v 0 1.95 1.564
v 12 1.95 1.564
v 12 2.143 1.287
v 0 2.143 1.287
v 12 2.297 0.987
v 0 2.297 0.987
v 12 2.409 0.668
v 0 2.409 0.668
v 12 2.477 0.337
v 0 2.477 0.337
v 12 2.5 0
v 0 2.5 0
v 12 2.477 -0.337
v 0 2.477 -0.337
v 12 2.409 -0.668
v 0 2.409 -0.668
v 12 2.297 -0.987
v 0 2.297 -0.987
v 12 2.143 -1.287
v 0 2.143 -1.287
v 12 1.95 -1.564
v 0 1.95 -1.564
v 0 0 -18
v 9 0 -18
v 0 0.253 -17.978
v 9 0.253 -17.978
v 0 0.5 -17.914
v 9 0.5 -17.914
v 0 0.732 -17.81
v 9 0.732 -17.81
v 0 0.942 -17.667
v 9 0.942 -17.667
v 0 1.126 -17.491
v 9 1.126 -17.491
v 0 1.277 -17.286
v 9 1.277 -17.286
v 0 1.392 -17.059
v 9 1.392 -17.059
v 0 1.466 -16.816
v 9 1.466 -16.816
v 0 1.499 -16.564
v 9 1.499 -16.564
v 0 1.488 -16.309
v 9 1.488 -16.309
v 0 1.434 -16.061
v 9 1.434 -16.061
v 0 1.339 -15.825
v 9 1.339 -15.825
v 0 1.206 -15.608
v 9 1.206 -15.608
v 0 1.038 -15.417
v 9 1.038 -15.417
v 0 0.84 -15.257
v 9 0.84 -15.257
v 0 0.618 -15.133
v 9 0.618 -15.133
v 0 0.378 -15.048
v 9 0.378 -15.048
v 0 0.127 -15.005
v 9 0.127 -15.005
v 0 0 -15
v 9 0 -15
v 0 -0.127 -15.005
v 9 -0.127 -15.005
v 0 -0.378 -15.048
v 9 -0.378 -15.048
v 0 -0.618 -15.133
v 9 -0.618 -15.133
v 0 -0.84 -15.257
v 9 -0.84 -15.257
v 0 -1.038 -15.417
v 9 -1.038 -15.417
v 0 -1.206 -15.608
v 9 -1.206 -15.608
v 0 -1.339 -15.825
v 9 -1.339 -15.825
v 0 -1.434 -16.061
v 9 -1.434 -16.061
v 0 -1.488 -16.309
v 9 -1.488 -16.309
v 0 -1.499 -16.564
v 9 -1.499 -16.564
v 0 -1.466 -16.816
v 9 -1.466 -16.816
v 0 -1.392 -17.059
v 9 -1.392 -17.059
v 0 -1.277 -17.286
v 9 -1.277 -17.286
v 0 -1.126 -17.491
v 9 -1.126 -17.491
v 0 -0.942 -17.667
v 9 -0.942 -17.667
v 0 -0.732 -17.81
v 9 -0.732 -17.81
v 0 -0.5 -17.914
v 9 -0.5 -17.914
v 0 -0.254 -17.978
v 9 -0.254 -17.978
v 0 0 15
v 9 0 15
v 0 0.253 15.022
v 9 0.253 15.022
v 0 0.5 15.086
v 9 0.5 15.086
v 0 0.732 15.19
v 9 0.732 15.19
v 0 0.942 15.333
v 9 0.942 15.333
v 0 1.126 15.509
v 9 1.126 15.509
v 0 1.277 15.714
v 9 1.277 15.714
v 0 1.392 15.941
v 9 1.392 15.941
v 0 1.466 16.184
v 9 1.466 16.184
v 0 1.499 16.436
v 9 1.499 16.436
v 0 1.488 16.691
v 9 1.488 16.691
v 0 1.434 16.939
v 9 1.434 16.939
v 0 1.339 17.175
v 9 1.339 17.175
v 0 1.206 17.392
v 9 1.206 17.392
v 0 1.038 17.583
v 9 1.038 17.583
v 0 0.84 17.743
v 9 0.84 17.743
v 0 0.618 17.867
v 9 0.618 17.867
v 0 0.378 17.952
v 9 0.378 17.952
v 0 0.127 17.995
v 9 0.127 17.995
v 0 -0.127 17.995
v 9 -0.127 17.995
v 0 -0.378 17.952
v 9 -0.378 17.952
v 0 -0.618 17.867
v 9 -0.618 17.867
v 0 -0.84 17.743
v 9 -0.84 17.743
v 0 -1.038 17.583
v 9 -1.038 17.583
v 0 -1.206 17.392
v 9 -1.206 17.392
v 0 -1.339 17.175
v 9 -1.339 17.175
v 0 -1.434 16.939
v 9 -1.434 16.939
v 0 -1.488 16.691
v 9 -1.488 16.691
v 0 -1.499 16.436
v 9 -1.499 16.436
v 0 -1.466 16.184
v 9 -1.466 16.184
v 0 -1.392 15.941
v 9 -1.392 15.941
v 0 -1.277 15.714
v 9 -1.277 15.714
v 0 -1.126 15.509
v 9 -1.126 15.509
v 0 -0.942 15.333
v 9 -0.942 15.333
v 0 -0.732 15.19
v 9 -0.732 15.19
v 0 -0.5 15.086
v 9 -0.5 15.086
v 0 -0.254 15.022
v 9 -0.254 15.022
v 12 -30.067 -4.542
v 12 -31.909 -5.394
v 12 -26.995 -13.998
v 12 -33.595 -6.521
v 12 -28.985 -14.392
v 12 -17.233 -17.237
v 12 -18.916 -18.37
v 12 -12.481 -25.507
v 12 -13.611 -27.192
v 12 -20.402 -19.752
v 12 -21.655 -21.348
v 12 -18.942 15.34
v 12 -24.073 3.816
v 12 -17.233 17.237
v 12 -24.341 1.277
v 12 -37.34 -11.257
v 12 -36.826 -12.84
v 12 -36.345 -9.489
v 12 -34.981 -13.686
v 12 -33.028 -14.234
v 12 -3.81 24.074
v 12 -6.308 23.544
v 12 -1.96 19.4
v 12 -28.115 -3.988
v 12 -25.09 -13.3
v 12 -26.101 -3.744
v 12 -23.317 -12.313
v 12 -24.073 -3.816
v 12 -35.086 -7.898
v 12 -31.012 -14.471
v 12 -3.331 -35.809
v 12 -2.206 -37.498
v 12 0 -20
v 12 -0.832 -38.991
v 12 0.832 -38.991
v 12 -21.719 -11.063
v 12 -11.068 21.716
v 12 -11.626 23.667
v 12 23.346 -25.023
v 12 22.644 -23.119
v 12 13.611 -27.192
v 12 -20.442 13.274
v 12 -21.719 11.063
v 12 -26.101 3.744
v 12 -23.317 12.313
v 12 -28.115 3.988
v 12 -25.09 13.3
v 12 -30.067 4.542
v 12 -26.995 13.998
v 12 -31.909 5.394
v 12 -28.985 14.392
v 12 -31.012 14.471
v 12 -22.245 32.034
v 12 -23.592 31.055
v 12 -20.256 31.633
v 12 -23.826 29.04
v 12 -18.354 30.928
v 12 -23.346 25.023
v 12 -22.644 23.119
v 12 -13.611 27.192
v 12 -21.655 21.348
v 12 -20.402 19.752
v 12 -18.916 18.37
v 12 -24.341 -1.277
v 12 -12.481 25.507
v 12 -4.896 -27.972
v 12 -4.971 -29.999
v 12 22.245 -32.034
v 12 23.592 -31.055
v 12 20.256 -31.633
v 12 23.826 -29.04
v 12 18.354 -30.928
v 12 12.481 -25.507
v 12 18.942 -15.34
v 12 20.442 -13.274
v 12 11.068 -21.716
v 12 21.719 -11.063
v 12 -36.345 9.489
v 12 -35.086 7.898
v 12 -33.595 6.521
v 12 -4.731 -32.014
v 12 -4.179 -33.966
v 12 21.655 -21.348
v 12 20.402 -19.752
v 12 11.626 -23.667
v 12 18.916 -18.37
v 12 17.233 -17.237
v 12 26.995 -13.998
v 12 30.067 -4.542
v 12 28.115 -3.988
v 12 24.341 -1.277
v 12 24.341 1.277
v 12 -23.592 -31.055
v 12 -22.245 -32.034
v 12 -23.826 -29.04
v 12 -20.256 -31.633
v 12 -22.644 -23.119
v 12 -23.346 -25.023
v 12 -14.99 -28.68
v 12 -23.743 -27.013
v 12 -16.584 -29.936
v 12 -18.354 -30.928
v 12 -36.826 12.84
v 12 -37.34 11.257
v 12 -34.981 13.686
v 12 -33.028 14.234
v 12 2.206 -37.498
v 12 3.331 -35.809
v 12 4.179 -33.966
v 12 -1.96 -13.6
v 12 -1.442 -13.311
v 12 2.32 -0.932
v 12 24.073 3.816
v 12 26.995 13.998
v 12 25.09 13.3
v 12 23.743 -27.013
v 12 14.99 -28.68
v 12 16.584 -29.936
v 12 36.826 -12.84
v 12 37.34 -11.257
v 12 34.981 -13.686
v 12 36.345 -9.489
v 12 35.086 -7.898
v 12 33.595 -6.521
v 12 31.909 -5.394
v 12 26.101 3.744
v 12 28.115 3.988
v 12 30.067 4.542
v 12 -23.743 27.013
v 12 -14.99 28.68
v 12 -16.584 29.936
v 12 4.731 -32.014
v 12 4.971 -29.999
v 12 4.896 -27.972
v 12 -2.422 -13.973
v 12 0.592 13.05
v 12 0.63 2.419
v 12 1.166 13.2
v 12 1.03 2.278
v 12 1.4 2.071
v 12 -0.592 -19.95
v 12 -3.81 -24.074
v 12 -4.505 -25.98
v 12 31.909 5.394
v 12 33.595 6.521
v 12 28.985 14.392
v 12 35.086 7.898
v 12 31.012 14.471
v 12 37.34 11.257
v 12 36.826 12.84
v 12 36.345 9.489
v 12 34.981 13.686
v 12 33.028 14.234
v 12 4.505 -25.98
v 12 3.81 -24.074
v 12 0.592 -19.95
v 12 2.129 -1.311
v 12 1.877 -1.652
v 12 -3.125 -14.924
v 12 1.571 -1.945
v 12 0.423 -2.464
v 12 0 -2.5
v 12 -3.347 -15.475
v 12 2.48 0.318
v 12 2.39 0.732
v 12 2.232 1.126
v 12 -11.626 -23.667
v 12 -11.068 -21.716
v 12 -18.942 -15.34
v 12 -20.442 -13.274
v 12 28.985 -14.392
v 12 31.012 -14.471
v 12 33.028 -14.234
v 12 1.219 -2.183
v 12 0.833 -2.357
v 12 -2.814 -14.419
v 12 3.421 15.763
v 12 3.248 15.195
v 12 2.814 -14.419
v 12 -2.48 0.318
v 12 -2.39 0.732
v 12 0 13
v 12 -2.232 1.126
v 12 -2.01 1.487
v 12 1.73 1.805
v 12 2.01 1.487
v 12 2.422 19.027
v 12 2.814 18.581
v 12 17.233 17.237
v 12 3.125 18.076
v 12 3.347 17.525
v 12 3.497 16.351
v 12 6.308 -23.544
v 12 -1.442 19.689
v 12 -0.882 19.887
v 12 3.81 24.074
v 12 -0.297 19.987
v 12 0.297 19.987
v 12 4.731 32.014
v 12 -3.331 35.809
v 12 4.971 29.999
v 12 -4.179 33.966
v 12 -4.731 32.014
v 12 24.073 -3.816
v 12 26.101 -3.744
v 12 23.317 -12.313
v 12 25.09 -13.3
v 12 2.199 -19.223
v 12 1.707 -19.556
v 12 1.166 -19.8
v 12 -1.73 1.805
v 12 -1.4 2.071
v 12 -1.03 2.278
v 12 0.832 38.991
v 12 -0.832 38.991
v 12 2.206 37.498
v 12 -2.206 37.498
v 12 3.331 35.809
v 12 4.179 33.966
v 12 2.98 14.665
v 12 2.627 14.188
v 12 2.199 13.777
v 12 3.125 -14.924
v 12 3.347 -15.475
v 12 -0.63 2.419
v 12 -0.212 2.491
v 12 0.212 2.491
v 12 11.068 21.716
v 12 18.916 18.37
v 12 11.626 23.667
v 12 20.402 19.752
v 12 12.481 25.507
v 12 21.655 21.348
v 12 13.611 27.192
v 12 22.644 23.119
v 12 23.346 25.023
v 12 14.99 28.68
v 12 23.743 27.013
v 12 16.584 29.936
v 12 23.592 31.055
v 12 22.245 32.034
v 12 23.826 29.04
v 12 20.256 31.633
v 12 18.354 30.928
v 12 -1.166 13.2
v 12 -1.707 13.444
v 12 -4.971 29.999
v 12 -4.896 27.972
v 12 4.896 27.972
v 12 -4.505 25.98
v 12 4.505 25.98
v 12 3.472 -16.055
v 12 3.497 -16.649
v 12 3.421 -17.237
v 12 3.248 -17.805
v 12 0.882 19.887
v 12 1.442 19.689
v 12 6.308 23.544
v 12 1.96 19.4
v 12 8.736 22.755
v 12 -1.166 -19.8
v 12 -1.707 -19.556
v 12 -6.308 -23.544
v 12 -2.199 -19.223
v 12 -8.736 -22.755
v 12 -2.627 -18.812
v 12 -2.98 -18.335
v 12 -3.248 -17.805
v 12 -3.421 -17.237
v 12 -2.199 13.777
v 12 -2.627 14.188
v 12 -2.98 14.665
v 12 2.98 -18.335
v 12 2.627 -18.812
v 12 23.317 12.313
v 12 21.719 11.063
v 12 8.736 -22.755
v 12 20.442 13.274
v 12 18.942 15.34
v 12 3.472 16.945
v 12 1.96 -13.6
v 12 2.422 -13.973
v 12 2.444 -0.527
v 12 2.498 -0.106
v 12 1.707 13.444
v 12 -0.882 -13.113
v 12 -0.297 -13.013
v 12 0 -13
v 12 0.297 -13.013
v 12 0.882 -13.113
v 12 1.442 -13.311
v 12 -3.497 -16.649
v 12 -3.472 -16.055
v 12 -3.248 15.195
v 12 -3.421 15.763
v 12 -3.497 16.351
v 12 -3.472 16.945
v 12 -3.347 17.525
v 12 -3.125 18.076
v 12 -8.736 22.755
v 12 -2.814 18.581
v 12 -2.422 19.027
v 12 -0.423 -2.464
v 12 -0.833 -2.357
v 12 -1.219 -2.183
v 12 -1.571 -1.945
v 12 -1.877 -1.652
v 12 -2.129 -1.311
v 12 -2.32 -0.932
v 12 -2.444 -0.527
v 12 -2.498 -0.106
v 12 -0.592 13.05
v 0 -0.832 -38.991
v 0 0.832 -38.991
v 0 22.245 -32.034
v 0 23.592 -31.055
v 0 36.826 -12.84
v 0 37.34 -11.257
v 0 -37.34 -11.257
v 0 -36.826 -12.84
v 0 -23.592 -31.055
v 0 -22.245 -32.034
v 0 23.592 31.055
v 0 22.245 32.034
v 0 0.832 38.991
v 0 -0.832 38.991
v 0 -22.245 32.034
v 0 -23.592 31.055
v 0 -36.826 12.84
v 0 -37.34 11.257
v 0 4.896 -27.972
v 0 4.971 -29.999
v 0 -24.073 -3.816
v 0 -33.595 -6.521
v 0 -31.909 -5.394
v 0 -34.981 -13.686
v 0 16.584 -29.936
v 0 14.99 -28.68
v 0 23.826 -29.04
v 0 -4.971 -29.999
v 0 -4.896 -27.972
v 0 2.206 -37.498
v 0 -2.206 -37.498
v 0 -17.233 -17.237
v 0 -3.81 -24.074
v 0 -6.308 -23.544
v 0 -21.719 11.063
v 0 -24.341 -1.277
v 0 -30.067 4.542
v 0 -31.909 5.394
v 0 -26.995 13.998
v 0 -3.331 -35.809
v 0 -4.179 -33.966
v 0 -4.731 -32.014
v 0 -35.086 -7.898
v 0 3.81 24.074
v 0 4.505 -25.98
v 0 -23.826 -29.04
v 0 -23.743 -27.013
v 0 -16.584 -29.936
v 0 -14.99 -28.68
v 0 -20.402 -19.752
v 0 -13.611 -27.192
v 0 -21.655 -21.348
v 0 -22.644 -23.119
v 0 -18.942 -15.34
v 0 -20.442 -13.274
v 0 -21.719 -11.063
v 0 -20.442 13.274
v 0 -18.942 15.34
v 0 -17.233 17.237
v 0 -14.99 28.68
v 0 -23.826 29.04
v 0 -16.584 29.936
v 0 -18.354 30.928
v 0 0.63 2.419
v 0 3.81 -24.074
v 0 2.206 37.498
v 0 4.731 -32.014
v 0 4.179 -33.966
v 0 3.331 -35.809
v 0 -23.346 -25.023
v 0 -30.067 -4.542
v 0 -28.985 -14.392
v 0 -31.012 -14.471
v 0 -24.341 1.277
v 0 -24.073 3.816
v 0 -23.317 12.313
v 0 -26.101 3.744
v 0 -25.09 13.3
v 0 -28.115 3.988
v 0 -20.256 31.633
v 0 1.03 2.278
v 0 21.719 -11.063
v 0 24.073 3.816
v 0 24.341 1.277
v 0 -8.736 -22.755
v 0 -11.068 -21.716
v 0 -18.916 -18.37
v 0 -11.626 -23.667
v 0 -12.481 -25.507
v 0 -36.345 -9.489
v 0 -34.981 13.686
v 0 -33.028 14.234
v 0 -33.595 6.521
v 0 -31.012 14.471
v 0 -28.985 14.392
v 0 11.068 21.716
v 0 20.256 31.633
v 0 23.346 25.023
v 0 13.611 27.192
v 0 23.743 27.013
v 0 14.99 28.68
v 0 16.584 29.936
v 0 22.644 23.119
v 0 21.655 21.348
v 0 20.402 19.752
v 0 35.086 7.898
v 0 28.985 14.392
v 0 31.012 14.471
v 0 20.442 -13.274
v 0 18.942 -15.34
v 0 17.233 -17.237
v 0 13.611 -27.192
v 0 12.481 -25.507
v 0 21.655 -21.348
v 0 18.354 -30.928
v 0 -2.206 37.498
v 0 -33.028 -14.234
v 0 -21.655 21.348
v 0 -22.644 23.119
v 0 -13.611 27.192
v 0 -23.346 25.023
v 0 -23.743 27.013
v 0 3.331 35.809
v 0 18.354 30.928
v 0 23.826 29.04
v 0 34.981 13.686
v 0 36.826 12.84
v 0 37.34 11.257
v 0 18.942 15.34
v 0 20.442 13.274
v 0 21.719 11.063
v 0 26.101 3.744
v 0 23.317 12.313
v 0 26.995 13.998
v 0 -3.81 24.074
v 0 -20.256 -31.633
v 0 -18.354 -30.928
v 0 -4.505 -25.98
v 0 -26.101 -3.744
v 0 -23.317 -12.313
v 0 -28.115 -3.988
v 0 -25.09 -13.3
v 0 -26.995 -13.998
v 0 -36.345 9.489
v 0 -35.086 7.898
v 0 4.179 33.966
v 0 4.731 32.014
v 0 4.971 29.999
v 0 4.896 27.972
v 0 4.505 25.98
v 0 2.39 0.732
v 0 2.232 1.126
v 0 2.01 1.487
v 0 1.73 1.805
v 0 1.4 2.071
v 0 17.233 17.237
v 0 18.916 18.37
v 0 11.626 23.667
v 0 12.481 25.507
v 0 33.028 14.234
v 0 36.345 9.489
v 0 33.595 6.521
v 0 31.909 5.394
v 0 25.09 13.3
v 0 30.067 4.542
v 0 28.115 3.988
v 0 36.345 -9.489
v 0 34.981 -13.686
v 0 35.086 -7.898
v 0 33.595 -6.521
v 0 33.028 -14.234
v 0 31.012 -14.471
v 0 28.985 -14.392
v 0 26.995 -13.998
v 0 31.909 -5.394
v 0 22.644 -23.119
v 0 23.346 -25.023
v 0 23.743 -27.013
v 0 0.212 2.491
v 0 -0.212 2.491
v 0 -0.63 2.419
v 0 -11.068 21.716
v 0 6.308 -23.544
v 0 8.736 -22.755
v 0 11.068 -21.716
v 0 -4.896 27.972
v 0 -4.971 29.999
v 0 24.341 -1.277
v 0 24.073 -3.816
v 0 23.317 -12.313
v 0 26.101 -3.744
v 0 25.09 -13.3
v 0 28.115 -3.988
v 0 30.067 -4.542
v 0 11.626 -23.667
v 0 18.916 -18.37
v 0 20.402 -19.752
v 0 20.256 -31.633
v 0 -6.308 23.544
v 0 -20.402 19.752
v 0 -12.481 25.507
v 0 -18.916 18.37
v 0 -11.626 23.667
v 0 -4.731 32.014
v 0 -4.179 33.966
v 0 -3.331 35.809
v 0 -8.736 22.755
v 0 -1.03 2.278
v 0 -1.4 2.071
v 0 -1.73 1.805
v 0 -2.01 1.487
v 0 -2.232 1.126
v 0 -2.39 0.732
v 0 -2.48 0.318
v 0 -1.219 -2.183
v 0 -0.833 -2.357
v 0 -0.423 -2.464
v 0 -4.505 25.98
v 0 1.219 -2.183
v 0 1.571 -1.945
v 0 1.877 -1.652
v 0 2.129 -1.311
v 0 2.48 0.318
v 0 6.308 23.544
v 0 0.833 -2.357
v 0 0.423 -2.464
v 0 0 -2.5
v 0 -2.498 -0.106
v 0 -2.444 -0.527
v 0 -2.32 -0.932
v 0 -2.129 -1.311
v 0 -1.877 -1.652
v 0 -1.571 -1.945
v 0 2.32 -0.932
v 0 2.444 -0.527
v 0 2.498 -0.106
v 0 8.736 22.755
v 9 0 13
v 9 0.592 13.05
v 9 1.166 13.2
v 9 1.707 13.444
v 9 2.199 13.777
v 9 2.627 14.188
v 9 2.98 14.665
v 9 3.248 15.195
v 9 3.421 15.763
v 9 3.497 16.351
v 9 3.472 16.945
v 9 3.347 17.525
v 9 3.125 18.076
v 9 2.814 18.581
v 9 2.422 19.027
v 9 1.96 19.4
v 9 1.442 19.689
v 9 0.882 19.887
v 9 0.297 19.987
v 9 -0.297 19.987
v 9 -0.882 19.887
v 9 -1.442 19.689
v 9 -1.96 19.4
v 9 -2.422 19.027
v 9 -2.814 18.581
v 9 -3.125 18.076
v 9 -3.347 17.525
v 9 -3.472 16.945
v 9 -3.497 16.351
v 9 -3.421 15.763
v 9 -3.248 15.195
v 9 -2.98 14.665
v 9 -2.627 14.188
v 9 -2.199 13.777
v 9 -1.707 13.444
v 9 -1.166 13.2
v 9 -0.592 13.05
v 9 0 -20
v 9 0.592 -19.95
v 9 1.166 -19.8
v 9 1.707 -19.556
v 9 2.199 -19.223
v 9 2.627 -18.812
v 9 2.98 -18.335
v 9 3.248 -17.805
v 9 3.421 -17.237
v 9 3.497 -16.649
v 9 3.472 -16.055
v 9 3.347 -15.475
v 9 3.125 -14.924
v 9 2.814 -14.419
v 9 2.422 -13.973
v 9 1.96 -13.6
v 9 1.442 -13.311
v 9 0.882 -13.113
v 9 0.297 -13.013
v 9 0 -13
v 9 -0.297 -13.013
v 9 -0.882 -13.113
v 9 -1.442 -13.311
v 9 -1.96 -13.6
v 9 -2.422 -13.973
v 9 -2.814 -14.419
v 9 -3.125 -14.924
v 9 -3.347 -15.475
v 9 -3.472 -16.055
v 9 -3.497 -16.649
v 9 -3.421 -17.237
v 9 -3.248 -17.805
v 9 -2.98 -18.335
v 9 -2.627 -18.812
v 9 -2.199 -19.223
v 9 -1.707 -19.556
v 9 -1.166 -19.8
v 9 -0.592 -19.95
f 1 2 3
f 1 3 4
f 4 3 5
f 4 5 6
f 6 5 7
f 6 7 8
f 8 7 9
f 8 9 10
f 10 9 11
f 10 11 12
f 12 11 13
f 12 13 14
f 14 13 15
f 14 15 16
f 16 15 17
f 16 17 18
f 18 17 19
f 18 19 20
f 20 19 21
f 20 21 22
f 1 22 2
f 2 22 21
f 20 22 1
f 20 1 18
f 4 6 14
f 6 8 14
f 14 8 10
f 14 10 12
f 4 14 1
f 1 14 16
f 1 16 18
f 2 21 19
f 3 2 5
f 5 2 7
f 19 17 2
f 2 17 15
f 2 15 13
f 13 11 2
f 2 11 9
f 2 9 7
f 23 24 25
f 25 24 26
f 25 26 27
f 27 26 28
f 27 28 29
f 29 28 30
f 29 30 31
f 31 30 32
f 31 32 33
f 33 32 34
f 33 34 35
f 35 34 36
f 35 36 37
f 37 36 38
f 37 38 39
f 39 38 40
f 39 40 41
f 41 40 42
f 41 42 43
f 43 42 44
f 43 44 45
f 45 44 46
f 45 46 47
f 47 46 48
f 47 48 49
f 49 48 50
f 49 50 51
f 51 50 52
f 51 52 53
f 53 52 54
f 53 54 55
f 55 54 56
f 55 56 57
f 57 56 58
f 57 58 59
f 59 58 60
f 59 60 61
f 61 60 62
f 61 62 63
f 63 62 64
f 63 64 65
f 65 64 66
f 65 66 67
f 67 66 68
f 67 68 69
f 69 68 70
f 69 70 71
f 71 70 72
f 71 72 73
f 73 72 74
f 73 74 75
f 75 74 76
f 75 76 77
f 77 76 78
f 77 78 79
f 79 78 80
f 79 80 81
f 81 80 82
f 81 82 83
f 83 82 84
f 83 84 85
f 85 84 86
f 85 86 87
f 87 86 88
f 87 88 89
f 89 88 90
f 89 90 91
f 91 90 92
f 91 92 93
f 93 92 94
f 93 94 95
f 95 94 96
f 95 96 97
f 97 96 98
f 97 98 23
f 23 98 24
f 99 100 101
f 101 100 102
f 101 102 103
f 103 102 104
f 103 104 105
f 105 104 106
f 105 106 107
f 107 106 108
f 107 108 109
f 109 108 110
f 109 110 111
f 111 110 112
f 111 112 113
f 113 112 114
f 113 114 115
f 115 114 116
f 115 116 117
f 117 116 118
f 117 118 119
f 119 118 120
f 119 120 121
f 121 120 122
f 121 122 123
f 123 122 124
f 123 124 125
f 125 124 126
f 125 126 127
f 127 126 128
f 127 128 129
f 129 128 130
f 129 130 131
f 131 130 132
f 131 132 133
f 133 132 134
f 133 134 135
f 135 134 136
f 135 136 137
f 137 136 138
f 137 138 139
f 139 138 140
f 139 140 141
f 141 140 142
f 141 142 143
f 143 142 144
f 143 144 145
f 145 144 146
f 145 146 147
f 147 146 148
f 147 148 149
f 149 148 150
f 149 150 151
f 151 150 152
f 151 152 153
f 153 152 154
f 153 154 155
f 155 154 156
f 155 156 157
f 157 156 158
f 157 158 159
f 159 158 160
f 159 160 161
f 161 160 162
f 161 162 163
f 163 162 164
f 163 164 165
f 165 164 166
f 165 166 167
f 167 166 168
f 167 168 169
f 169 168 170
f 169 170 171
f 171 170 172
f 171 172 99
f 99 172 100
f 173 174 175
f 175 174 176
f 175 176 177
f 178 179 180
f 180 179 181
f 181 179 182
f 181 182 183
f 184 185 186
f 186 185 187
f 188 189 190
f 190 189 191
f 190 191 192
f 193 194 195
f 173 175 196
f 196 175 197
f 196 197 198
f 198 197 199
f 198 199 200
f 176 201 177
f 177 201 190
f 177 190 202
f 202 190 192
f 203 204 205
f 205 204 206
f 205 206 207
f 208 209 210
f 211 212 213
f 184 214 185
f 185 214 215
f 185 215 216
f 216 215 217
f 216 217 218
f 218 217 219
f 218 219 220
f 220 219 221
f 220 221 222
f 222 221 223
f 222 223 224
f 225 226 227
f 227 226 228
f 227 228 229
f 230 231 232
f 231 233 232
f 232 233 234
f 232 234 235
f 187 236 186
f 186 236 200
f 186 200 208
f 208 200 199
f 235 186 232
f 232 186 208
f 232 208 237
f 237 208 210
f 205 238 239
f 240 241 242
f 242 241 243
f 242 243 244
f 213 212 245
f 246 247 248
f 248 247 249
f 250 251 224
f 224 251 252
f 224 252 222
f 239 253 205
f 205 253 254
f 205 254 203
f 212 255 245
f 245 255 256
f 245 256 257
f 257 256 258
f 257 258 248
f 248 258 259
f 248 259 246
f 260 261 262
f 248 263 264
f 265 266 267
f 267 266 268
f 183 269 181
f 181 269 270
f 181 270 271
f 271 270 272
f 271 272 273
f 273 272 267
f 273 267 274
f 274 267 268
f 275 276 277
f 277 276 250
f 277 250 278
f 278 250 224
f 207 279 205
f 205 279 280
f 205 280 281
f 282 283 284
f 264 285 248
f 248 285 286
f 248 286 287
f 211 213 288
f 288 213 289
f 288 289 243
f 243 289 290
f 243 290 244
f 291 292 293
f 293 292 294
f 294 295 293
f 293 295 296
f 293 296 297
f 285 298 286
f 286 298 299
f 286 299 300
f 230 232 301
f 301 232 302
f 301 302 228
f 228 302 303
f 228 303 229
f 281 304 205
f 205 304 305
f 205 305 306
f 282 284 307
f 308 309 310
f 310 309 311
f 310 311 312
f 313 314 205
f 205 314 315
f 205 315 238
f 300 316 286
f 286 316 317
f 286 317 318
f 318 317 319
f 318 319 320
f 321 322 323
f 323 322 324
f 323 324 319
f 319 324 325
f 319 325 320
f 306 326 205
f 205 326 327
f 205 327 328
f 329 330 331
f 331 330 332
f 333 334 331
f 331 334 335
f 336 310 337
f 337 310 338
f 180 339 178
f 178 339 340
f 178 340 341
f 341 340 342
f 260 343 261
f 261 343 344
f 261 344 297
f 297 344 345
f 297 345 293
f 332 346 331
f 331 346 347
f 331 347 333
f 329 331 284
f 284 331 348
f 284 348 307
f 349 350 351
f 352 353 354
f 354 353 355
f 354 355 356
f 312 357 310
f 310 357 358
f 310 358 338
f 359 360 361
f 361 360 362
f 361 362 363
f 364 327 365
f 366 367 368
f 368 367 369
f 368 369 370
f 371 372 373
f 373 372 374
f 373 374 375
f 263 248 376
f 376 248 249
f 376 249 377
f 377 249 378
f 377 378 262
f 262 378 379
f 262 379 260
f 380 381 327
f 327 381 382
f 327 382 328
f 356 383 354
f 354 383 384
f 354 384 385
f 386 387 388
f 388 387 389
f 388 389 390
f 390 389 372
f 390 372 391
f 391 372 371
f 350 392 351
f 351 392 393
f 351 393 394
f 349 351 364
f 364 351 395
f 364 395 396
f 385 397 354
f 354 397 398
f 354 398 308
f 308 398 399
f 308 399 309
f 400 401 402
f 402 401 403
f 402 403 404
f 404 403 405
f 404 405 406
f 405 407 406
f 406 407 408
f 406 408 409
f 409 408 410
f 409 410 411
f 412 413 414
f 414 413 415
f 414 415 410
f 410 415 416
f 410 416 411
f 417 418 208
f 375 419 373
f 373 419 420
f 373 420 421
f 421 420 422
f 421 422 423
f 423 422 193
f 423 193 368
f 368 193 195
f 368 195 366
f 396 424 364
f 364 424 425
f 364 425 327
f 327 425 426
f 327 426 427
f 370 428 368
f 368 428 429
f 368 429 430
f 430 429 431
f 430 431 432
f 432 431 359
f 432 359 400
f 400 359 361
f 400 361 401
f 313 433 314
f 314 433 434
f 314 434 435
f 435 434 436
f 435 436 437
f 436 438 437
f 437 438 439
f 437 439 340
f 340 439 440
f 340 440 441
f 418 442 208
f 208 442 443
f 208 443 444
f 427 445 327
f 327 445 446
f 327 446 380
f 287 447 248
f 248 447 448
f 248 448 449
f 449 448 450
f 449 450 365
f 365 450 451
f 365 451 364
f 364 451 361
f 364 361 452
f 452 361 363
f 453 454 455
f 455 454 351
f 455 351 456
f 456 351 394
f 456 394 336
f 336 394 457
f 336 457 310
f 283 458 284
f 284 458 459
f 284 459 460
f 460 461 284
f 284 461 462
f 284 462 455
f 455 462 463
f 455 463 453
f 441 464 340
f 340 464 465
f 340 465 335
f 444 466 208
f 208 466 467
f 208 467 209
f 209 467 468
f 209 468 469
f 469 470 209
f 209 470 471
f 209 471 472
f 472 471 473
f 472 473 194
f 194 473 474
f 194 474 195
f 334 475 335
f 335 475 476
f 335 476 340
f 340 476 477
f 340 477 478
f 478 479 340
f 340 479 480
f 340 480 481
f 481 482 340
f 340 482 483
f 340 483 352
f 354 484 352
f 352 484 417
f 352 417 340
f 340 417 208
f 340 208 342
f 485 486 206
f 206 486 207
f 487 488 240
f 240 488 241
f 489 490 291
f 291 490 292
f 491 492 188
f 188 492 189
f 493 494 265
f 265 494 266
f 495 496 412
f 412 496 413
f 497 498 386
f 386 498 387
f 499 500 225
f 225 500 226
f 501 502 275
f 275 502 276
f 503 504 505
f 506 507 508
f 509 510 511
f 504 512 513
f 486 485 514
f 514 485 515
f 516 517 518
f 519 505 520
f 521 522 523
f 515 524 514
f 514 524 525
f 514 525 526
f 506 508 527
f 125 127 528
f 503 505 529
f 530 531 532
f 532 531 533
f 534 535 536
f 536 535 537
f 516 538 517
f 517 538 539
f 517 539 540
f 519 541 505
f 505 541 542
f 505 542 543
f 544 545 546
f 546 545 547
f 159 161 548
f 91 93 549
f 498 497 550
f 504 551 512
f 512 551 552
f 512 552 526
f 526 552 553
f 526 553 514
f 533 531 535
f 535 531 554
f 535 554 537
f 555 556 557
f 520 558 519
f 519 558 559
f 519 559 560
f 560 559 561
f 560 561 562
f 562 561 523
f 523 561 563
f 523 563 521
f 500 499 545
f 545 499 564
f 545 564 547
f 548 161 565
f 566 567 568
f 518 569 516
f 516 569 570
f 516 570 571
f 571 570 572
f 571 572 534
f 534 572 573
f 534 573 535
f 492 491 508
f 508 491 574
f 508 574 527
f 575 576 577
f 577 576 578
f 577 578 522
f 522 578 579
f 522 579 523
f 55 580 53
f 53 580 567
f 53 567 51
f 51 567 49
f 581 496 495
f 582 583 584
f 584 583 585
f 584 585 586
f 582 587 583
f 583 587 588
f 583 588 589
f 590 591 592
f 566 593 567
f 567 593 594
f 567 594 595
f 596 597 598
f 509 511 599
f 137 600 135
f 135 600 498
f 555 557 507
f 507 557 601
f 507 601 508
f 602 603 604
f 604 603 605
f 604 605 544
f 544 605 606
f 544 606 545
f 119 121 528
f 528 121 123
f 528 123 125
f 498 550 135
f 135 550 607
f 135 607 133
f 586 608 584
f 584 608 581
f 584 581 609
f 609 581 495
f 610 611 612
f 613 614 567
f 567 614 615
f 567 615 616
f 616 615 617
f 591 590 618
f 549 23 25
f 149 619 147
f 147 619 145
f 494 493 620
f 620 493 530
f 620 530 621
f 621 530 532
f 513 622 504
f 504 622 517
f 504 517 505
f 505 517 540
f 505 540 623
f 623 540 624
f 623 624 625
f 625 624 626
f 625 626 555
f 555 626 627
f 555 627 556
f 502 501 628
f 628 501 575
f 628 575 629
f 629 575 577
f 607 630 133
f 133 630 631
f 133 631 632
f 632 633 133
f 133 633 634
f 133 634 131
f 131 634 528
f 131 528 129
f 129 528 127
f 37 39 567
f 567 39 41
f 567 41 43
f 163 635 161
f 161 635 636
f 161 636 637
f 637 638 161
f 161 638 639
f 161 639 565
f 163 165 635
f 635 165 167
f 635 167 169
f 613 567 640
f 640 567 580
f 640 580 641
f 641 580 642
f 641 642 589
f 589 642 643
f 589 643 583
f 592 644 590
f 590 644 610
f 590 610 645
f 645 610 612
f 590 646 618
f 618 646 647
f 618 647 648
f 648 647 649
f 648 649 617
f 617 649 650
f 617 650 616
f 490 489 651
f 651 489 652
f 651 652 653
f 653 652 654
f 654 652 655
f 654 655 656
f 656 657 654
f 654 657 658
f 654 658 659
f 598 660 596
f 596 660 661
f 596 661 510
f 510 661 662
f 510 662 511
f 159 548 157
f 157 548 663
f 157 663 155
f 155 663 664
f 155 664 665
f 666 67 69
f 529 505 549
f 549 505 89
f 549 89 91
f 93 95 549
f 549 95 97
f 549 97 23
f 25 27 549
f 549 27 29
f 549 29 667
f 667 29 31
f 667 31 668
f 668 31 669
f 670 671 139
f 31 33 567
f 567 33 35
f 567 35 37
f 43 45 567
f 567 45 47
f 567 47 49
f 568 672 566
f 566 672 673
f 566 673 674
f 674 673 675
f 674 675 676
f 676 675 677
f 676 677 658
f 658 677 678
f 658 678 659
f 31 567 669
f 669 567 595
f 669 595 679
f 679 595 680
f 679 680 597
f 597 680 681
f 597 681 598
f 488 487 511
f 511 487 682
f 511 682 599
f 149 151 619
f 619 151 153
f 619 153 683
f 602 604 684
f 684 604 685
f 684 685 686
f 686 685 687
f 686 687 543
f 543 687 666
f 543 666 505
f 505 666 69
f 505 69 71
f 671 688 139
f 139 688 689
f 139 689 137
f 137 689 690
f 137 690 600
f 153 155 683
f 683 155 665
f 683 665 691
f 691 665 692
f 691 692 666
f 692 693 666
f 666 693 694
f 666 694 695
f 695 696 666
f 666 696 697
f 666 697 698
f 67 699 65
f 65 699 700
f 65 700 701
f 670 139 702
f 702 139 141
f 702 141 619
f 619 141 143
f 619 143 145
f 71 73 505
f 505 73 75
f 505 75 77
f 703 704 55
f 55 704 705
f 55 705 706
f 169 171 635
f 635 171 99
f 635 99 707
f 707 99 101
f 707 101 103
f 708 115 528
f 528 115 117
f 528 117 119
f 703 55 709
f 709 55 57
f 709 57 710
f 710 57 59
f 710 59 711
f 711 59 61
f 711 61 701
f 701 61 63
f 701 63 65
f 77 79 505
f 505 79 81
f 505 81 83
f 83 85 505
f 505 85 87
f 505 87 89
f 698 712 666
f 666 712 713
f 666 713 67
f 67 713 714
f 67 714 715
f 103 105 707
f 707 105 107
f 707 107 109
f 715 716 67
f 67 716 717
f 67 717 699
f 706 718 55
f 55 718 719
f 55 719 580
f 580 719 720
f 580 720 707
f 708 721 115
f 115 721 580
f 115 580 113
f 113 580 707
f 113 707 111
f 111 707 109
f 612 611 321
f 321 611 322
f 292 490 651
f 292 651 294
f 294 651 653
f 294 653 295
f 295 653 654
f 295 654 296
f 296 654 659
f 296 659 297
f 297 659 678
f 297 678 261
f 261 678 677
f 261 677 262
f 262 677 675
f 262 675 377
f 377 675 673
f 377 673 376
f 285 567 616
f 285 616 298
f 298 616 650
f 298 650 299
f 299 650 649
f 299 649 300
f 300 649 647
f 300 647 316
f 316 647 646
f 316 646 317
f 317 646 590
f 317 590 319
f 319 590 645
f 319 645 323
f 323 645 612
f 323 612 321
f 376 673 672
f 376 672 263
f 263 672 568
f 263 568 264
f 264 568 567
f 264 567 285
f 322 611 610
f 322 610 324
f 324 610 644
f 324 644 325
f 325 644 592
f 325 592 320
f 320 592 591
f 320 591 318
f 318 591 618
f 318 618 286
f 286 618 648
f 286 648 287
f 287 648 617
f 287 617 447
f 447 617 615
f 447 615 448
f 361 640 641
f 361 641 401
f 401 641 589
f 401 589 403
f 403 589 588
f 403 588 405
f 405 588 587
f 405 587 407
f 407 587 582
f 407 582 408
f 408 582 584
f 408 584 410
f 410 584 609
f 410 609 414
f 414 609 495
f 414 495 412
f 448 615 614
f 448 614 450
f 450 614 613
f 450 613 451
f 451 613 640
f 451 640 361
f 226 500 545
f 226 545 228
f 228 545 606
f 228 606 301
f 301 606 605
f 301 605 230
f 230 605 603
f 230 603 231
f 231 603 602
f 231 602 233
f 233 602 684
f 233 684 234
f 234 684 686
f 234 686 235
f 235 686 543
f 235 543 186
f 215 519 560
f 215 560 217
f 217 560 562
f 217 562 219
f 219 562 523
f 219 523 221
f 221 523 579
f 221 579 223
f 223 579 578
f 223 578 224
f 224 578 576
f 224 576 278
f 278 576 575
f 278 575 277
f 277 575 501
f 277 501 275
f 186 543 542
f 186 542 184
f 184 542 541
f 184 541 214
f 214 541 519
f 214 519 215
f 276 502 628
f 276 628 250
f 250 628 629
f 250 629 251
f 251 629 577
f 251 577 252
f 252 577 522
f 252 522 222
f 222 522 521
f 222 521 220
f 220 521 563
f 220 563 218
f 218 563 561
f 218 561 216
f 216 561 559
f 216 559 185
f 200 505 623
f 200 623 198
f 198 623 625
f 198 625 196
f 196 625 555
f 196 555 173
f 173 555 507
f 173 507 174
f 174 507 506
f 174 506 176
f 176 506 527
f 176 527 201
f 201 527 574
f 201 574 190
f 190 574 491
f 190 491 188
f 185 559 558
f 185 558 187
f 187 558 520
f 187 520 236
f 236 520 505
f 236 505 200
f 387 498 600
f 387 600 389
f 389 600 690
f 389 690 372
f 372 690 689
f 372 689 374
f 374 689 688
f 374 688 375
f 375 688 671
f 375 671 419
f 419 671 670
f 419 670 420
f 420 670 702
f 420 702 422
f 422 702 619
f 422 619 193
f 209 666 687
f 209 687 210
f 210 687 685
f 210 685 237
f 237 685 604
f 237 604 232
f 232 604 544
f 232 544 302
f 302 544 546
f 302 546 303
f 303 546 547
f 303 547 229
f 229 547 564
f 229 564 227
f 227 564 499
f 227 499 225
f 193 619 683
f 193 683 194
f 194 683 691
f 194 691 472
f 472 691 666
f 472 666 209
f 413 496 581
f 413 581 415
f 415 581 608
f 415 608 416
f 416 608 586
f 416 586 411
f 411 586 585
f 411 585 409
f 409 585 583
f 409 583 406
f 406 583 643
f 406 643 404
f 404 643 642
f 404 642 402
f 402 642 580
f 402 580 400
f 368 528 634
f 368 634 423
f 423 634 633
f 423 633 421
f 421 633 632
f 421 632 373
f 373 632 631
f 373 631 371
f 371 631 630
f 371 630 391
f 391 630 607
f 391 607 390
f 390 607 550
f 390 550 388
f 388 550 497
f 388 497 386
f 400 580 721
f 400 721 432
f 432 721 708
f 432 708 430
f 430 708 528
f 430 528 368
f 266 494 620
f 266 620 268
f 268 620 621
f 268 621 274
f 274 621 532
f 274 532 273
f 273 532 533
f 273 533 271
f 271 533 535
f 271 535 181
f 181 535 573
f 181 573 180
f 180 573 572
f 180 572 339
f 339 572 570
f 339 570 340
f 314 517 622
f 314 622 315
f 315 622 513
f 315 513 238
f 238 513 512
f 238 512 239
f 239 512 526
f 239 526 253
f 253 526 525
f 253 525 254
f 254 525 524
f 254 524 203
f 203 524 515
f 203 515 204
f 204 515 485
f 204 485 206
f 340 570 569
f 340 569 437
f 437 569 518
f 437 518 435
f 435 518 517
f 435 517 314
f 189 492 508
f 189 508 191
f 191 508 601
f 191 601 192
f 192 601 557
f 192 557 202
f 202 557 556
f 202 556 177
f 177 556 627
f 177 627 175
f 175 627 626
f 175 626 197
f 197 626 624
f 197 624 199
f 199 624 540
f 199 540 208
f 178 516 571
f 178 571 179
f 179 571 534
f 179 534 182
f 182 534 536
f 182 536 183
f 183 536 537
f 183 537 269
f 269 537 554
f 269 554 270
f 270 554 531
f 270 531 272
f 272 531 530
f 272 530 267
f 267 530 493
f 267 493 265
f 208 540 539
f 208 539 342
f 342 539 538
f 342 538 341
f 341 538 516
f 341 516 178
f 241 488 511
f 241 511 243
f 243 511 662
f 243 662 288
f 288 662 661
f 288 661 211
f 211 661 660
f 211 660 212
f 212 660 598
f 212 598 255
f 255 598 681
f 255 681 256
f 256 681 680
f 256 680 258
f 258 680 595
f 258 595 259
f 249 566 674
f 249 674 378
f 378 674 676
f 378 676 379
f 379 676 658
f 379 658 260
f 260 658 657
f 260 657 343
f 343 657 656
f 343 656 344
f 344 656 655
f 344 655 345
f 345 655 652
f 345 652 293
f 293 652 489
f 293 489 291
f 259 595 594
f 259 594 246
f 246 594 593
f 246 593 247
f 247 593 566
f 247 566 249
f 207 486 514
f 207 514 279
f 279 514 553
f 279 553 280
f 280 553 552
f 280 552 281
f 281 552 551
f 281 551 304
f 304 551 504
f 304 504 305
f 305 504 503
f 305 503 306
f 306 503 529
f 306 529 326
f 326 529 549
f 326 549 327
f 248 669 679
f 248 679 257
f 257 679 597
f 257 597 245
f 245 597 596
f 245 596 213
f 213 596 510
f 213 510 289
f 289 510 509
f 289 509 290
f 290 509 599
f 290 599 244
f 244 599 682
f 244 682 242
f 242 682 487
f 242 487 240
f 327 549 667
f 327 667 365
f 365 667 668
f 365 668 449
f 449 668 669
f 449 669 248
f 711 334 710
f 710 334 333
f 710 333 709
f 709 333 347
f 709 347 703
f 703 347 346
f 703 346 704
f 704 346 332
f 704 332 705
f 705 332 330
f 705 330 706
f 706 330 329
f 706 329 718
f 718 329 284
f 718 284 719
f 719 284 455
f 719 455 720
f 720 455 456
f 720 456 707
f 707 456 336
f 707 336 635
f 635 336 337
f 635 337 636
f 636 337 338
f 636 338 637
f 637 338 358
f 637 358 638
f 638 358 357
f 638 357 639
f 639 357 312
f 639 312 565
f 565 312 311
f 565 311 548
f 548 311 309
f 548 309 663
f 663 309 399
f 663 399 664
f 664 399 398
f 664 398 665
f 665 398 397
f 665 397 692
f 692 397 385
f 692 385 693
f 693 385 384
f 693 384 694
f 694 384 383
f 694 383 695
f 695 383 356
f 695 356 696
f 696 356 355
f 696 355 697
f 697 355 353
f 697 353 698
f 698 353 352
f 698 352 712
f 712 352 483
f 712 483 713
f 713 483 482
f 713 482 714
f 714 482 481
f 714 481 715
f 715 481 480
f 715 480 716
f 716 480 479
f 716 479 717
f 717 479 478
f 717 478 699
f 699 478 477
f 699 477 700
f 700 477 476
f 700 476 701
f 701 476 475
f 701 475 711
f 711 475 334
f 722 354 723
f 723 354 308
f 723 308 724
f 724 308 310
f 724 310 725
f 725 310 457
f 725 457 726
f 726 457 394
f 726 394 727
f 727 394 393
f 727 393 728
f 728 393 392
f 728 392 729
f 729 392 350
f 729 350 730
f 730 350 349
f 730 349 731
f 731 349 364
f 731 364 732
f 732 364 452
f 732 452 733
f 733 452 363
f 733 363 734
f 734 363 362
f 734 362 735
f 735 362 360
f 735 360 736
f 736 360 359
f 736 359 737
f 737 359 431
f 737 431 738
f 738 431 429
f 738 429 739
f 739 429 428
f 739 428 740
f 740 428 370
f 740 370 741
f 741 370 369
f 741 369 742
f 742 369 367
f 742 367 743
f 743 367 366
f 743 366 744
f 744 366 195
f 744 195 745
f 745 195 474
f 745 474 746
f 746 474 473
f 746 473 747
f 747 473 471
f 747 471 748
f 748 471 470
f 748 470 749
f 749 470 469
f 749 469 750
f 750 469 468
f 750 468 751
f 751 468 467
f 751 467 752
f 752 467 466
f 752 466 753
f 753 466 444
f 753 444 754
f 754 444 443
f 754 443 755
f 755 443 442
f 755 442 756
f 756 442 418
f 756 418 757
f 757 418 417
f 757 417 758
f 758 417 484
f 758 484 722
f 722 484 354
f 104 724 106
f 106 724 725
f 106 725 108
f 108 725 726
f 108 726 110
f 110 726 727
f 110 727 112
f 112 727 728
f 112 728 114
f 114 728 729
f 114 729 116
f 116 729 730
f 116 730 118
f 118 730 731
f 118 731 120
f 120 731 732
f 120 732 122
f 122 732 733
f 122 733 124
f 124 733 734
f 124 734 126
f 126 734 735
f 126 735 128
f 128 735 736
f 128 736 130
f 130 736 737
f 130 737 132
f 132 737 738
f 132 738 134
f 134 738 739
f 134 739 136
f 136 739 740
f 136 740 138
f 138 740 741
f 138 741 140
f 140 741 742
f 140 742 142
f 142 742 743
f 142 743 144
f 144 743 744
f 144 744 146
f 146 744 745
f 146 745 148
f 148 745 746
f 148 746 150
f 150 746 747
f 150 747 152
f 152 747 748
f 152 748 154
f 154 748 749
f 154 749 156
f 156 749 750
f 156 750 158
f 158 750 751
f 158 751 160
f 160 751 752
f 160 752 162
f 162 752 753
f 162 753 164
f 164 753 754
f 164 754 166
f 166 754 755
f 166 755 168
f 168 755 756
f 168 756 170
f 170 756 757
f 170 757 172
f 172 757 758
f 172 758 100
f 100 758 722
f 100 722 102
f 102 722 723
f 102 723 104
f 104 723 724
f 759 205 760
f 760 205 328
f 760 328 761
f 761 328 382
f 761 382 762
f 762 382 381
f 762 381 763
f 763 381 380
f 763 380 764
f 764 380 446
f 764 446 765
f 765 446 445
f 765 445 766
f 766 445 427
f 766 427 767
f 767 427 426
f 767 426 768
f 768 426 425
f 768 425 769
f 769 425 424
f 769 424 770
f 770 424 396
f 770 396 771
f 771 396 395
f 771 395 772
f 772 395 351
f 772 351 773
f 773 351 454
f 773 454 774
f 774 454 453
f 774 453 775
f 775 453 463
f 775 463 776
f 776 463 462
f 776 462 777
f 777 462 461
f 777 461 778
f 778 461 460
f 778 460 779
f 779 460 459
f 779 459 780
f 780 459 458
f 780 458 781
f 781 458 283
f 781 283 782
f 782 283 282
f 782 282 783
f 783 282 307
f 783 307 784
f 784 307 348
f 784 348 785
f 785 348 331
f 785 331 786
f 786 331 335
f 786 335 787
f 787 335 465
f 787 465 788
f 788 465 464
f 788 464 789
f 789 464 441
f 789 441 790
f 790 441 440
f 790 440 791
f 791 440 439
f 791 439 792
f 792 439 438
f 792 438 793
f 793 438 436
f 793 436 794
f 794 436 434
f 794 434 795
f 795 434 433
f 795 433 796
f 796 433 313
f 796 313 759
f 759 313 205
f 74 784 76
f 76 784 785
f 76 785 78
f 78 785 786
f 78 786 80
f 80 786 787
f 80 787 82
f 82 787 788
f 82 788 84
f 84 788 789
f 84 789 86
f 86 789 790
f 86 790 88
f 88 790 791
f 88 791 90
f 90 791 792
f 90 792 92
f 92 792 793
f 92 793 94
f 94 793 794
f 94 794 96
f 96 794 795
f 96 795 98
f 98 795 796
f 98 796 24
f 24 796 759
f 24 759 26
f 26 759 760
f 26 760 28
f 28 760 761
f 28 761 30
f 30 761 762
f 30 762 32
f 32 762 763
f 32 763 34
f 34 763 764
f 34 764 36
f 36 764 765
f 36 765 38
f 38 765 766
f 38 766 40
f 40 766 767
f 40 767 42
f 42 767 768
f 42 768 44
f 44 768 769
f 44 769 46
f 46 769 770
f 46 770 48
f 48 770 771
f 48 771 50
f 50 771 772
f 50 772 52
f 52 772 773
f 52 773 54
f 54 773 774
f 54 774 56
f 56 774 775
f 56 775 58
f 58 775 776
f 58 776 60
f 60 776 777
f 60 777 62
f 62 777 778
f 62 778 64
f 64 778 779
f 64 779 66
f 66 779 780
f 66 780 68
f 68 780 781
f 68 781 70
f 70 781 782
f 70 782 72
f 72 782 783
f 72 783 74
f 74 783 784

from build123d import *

# Parameters (mm, degrees)
BASPROSKE_W             = 12
BASPROSKE_H             = 39
TOOTHCUT_DEPTH          = 57.444663167
TEETHCUTS_COUNT         = 10
BORSKE_R                = 1.5
BORE_DEPTH              = 12
CROQUIS1_R              = 2.5
CORTAR_EXTRUIR1_DEPTH   = 56.31066802
SALIENTE_EXTRUIR1_DEPTH = 12
CROQUIS3_R              = 1.5
CORTAR_EXTRUIR2_DEPTH   = 12
CROQUIS3_3_R            = 3.5
CROQUIS3_3_R_2          = 1.5
CORTAR_EXTRUIR3_DEPTH   = 3


with BuildPart() as part:
    # BasProSke → Base-Revolve (revolve)
    with BuildSketch(Plane(origin=(0, 0, 0), x_dir=(1, 0, 0), z_dir=(0, 1, 0)), mode=Mode.PRIVATE) as base_revolve_sk:
        with Locations((6, 19.5)):
            Rectangle(BASPROSKE_W, BASPROSKE_H)
    revolve(base_revolve_sk.sketch.rotate(Axis((-10, 0, 0), (1, 0, 0)), 180), axis=Axis((-10, 0, 0), (1, 0, 0)))

    # TooCutSke → ToothCut (cut, through all)
    with BuildSketch(Plane(origin=(0, 0, 0), x_dir=(0, 0, -1), z_dir=(1, 0, 0))):
        with BuildLine():
            ThreePointArc((3.815775932, 24.073465269), (0, 24.374), (-3.815775932, 24.073465269))
            ThreePointArc((-3.815775932, 24.073465269), (-5.403120307, 31.925375456), (-11.292153099, 37.355978418))
            ThreePointArc((-11.292153099, 37.355978418), (0, 39.0254), (11.292153099, 37.355978418))
            ThreePointArc((11.292153099, 37.355978418), (5.403120307, 31.925375456), (3.815775932, 24.073465269))
        make_face()
    toothcut = extrude(amount=TOOTHCUT_DEPTH, mode=Mode.SUBTRACT)

    # TeethCuts: ToothCut ×10 about axis
    teethcuts_axis = Axis((0, 0, 0), (1, 0, 0))
    for i in range(1, TEETHCUTS_COUNT):
        add(toothcut.rotate(teethcuts_axis, i * 360 / TEETHCUTS_COUNT), mode=Mode.SUBTRACT)

    # BorSke → Bore (cut, symmetric)
    with BuildSketch(Plane(origin=(0, 0, 0), x_dir=(0, 0, -1), z_dir=(1, 0, 0))):
        with Locations(Location((0, 0, 0), (0, 0, 180))):
            Circle(BORSKE_R)
    extrude(amount=BORE_DEPTH, both=True, mode=Mode.SUBTRACT)

    # Croquis1 → Cortar-Extruir1 (cut, through all)
    with BuildSketch(Plane.YZ.offset(12)):
        with Locations(Location((0, 0, 0), (0, 0, 270))):
            Circle(CROQUIS1_R)
    extrude(amount=-CORTAR_EXTRUIR1_DEPTH, mode=Mode.SUBTRACT)

    # Croquis3 → Cortar-Extruir2 (cut)
    with BuildSketch(Plane(origin=(12, 0, 0), x_dir=(0, 0, -1), z_dir=(1, 0, 0))):
        with Locations((-16.5, 0)):
            Circle(CROQUIS3_R)
    cortar_extruir2 = extrude(amount=-CORTAR_EXTRUIR2_DEPTH, mode=Mode.SUBTRACT)

    # Croquis3<3> → Cortar-Extruir3 (cut)
    with BuildSketch(Plane(origin=(12, 0, 0), x_dir=(0, 0, -1), z_dir=(1, 0, 0))):
        with Locations((-16.5, 0)):
            Circle(CROQUIS3_3_R)
        with Locations((-16.5, 0)):
            Circle(CROQUIS3_3_R_2, mode=Mode.SUBTRACT)
    cortar_extruir3 = extrude(amount=-CORTAR_EXTRUIR3_DEPTH, mode=Mode.SUBTRACT)

    # Simetría1: Cortar-Extruir2, Cortar-Extruir3 across plane
    add(cortar_extruir2.mirror(Plane.XY), mode=Mode.SUBTRACT)
    add(cortar_extruir3.mirror(Plane.XY), mode=Mode.SUBTRACT)


with BuildPart() as body_2:
    # Croquis2 → Saliente-Extruir1 (new body)
    with BuildSketch(Plane(origin=(12, 0, 0), x_dir=(0, 0, -1), z_dir=(1, 0, 0))):
        with BuildLine():
            ThreePointArc((1.564448785, 1.95), (0, 2.5), (-1.564448785, 1.95))
            Line((-1.564448785, 1.95), (1.564448785, 1.95))
        make_face()
    extrude(amount=-SALIENTE_EXTRUIR1_DEPTH)


solid = Compound([part.part, body_2.part])
